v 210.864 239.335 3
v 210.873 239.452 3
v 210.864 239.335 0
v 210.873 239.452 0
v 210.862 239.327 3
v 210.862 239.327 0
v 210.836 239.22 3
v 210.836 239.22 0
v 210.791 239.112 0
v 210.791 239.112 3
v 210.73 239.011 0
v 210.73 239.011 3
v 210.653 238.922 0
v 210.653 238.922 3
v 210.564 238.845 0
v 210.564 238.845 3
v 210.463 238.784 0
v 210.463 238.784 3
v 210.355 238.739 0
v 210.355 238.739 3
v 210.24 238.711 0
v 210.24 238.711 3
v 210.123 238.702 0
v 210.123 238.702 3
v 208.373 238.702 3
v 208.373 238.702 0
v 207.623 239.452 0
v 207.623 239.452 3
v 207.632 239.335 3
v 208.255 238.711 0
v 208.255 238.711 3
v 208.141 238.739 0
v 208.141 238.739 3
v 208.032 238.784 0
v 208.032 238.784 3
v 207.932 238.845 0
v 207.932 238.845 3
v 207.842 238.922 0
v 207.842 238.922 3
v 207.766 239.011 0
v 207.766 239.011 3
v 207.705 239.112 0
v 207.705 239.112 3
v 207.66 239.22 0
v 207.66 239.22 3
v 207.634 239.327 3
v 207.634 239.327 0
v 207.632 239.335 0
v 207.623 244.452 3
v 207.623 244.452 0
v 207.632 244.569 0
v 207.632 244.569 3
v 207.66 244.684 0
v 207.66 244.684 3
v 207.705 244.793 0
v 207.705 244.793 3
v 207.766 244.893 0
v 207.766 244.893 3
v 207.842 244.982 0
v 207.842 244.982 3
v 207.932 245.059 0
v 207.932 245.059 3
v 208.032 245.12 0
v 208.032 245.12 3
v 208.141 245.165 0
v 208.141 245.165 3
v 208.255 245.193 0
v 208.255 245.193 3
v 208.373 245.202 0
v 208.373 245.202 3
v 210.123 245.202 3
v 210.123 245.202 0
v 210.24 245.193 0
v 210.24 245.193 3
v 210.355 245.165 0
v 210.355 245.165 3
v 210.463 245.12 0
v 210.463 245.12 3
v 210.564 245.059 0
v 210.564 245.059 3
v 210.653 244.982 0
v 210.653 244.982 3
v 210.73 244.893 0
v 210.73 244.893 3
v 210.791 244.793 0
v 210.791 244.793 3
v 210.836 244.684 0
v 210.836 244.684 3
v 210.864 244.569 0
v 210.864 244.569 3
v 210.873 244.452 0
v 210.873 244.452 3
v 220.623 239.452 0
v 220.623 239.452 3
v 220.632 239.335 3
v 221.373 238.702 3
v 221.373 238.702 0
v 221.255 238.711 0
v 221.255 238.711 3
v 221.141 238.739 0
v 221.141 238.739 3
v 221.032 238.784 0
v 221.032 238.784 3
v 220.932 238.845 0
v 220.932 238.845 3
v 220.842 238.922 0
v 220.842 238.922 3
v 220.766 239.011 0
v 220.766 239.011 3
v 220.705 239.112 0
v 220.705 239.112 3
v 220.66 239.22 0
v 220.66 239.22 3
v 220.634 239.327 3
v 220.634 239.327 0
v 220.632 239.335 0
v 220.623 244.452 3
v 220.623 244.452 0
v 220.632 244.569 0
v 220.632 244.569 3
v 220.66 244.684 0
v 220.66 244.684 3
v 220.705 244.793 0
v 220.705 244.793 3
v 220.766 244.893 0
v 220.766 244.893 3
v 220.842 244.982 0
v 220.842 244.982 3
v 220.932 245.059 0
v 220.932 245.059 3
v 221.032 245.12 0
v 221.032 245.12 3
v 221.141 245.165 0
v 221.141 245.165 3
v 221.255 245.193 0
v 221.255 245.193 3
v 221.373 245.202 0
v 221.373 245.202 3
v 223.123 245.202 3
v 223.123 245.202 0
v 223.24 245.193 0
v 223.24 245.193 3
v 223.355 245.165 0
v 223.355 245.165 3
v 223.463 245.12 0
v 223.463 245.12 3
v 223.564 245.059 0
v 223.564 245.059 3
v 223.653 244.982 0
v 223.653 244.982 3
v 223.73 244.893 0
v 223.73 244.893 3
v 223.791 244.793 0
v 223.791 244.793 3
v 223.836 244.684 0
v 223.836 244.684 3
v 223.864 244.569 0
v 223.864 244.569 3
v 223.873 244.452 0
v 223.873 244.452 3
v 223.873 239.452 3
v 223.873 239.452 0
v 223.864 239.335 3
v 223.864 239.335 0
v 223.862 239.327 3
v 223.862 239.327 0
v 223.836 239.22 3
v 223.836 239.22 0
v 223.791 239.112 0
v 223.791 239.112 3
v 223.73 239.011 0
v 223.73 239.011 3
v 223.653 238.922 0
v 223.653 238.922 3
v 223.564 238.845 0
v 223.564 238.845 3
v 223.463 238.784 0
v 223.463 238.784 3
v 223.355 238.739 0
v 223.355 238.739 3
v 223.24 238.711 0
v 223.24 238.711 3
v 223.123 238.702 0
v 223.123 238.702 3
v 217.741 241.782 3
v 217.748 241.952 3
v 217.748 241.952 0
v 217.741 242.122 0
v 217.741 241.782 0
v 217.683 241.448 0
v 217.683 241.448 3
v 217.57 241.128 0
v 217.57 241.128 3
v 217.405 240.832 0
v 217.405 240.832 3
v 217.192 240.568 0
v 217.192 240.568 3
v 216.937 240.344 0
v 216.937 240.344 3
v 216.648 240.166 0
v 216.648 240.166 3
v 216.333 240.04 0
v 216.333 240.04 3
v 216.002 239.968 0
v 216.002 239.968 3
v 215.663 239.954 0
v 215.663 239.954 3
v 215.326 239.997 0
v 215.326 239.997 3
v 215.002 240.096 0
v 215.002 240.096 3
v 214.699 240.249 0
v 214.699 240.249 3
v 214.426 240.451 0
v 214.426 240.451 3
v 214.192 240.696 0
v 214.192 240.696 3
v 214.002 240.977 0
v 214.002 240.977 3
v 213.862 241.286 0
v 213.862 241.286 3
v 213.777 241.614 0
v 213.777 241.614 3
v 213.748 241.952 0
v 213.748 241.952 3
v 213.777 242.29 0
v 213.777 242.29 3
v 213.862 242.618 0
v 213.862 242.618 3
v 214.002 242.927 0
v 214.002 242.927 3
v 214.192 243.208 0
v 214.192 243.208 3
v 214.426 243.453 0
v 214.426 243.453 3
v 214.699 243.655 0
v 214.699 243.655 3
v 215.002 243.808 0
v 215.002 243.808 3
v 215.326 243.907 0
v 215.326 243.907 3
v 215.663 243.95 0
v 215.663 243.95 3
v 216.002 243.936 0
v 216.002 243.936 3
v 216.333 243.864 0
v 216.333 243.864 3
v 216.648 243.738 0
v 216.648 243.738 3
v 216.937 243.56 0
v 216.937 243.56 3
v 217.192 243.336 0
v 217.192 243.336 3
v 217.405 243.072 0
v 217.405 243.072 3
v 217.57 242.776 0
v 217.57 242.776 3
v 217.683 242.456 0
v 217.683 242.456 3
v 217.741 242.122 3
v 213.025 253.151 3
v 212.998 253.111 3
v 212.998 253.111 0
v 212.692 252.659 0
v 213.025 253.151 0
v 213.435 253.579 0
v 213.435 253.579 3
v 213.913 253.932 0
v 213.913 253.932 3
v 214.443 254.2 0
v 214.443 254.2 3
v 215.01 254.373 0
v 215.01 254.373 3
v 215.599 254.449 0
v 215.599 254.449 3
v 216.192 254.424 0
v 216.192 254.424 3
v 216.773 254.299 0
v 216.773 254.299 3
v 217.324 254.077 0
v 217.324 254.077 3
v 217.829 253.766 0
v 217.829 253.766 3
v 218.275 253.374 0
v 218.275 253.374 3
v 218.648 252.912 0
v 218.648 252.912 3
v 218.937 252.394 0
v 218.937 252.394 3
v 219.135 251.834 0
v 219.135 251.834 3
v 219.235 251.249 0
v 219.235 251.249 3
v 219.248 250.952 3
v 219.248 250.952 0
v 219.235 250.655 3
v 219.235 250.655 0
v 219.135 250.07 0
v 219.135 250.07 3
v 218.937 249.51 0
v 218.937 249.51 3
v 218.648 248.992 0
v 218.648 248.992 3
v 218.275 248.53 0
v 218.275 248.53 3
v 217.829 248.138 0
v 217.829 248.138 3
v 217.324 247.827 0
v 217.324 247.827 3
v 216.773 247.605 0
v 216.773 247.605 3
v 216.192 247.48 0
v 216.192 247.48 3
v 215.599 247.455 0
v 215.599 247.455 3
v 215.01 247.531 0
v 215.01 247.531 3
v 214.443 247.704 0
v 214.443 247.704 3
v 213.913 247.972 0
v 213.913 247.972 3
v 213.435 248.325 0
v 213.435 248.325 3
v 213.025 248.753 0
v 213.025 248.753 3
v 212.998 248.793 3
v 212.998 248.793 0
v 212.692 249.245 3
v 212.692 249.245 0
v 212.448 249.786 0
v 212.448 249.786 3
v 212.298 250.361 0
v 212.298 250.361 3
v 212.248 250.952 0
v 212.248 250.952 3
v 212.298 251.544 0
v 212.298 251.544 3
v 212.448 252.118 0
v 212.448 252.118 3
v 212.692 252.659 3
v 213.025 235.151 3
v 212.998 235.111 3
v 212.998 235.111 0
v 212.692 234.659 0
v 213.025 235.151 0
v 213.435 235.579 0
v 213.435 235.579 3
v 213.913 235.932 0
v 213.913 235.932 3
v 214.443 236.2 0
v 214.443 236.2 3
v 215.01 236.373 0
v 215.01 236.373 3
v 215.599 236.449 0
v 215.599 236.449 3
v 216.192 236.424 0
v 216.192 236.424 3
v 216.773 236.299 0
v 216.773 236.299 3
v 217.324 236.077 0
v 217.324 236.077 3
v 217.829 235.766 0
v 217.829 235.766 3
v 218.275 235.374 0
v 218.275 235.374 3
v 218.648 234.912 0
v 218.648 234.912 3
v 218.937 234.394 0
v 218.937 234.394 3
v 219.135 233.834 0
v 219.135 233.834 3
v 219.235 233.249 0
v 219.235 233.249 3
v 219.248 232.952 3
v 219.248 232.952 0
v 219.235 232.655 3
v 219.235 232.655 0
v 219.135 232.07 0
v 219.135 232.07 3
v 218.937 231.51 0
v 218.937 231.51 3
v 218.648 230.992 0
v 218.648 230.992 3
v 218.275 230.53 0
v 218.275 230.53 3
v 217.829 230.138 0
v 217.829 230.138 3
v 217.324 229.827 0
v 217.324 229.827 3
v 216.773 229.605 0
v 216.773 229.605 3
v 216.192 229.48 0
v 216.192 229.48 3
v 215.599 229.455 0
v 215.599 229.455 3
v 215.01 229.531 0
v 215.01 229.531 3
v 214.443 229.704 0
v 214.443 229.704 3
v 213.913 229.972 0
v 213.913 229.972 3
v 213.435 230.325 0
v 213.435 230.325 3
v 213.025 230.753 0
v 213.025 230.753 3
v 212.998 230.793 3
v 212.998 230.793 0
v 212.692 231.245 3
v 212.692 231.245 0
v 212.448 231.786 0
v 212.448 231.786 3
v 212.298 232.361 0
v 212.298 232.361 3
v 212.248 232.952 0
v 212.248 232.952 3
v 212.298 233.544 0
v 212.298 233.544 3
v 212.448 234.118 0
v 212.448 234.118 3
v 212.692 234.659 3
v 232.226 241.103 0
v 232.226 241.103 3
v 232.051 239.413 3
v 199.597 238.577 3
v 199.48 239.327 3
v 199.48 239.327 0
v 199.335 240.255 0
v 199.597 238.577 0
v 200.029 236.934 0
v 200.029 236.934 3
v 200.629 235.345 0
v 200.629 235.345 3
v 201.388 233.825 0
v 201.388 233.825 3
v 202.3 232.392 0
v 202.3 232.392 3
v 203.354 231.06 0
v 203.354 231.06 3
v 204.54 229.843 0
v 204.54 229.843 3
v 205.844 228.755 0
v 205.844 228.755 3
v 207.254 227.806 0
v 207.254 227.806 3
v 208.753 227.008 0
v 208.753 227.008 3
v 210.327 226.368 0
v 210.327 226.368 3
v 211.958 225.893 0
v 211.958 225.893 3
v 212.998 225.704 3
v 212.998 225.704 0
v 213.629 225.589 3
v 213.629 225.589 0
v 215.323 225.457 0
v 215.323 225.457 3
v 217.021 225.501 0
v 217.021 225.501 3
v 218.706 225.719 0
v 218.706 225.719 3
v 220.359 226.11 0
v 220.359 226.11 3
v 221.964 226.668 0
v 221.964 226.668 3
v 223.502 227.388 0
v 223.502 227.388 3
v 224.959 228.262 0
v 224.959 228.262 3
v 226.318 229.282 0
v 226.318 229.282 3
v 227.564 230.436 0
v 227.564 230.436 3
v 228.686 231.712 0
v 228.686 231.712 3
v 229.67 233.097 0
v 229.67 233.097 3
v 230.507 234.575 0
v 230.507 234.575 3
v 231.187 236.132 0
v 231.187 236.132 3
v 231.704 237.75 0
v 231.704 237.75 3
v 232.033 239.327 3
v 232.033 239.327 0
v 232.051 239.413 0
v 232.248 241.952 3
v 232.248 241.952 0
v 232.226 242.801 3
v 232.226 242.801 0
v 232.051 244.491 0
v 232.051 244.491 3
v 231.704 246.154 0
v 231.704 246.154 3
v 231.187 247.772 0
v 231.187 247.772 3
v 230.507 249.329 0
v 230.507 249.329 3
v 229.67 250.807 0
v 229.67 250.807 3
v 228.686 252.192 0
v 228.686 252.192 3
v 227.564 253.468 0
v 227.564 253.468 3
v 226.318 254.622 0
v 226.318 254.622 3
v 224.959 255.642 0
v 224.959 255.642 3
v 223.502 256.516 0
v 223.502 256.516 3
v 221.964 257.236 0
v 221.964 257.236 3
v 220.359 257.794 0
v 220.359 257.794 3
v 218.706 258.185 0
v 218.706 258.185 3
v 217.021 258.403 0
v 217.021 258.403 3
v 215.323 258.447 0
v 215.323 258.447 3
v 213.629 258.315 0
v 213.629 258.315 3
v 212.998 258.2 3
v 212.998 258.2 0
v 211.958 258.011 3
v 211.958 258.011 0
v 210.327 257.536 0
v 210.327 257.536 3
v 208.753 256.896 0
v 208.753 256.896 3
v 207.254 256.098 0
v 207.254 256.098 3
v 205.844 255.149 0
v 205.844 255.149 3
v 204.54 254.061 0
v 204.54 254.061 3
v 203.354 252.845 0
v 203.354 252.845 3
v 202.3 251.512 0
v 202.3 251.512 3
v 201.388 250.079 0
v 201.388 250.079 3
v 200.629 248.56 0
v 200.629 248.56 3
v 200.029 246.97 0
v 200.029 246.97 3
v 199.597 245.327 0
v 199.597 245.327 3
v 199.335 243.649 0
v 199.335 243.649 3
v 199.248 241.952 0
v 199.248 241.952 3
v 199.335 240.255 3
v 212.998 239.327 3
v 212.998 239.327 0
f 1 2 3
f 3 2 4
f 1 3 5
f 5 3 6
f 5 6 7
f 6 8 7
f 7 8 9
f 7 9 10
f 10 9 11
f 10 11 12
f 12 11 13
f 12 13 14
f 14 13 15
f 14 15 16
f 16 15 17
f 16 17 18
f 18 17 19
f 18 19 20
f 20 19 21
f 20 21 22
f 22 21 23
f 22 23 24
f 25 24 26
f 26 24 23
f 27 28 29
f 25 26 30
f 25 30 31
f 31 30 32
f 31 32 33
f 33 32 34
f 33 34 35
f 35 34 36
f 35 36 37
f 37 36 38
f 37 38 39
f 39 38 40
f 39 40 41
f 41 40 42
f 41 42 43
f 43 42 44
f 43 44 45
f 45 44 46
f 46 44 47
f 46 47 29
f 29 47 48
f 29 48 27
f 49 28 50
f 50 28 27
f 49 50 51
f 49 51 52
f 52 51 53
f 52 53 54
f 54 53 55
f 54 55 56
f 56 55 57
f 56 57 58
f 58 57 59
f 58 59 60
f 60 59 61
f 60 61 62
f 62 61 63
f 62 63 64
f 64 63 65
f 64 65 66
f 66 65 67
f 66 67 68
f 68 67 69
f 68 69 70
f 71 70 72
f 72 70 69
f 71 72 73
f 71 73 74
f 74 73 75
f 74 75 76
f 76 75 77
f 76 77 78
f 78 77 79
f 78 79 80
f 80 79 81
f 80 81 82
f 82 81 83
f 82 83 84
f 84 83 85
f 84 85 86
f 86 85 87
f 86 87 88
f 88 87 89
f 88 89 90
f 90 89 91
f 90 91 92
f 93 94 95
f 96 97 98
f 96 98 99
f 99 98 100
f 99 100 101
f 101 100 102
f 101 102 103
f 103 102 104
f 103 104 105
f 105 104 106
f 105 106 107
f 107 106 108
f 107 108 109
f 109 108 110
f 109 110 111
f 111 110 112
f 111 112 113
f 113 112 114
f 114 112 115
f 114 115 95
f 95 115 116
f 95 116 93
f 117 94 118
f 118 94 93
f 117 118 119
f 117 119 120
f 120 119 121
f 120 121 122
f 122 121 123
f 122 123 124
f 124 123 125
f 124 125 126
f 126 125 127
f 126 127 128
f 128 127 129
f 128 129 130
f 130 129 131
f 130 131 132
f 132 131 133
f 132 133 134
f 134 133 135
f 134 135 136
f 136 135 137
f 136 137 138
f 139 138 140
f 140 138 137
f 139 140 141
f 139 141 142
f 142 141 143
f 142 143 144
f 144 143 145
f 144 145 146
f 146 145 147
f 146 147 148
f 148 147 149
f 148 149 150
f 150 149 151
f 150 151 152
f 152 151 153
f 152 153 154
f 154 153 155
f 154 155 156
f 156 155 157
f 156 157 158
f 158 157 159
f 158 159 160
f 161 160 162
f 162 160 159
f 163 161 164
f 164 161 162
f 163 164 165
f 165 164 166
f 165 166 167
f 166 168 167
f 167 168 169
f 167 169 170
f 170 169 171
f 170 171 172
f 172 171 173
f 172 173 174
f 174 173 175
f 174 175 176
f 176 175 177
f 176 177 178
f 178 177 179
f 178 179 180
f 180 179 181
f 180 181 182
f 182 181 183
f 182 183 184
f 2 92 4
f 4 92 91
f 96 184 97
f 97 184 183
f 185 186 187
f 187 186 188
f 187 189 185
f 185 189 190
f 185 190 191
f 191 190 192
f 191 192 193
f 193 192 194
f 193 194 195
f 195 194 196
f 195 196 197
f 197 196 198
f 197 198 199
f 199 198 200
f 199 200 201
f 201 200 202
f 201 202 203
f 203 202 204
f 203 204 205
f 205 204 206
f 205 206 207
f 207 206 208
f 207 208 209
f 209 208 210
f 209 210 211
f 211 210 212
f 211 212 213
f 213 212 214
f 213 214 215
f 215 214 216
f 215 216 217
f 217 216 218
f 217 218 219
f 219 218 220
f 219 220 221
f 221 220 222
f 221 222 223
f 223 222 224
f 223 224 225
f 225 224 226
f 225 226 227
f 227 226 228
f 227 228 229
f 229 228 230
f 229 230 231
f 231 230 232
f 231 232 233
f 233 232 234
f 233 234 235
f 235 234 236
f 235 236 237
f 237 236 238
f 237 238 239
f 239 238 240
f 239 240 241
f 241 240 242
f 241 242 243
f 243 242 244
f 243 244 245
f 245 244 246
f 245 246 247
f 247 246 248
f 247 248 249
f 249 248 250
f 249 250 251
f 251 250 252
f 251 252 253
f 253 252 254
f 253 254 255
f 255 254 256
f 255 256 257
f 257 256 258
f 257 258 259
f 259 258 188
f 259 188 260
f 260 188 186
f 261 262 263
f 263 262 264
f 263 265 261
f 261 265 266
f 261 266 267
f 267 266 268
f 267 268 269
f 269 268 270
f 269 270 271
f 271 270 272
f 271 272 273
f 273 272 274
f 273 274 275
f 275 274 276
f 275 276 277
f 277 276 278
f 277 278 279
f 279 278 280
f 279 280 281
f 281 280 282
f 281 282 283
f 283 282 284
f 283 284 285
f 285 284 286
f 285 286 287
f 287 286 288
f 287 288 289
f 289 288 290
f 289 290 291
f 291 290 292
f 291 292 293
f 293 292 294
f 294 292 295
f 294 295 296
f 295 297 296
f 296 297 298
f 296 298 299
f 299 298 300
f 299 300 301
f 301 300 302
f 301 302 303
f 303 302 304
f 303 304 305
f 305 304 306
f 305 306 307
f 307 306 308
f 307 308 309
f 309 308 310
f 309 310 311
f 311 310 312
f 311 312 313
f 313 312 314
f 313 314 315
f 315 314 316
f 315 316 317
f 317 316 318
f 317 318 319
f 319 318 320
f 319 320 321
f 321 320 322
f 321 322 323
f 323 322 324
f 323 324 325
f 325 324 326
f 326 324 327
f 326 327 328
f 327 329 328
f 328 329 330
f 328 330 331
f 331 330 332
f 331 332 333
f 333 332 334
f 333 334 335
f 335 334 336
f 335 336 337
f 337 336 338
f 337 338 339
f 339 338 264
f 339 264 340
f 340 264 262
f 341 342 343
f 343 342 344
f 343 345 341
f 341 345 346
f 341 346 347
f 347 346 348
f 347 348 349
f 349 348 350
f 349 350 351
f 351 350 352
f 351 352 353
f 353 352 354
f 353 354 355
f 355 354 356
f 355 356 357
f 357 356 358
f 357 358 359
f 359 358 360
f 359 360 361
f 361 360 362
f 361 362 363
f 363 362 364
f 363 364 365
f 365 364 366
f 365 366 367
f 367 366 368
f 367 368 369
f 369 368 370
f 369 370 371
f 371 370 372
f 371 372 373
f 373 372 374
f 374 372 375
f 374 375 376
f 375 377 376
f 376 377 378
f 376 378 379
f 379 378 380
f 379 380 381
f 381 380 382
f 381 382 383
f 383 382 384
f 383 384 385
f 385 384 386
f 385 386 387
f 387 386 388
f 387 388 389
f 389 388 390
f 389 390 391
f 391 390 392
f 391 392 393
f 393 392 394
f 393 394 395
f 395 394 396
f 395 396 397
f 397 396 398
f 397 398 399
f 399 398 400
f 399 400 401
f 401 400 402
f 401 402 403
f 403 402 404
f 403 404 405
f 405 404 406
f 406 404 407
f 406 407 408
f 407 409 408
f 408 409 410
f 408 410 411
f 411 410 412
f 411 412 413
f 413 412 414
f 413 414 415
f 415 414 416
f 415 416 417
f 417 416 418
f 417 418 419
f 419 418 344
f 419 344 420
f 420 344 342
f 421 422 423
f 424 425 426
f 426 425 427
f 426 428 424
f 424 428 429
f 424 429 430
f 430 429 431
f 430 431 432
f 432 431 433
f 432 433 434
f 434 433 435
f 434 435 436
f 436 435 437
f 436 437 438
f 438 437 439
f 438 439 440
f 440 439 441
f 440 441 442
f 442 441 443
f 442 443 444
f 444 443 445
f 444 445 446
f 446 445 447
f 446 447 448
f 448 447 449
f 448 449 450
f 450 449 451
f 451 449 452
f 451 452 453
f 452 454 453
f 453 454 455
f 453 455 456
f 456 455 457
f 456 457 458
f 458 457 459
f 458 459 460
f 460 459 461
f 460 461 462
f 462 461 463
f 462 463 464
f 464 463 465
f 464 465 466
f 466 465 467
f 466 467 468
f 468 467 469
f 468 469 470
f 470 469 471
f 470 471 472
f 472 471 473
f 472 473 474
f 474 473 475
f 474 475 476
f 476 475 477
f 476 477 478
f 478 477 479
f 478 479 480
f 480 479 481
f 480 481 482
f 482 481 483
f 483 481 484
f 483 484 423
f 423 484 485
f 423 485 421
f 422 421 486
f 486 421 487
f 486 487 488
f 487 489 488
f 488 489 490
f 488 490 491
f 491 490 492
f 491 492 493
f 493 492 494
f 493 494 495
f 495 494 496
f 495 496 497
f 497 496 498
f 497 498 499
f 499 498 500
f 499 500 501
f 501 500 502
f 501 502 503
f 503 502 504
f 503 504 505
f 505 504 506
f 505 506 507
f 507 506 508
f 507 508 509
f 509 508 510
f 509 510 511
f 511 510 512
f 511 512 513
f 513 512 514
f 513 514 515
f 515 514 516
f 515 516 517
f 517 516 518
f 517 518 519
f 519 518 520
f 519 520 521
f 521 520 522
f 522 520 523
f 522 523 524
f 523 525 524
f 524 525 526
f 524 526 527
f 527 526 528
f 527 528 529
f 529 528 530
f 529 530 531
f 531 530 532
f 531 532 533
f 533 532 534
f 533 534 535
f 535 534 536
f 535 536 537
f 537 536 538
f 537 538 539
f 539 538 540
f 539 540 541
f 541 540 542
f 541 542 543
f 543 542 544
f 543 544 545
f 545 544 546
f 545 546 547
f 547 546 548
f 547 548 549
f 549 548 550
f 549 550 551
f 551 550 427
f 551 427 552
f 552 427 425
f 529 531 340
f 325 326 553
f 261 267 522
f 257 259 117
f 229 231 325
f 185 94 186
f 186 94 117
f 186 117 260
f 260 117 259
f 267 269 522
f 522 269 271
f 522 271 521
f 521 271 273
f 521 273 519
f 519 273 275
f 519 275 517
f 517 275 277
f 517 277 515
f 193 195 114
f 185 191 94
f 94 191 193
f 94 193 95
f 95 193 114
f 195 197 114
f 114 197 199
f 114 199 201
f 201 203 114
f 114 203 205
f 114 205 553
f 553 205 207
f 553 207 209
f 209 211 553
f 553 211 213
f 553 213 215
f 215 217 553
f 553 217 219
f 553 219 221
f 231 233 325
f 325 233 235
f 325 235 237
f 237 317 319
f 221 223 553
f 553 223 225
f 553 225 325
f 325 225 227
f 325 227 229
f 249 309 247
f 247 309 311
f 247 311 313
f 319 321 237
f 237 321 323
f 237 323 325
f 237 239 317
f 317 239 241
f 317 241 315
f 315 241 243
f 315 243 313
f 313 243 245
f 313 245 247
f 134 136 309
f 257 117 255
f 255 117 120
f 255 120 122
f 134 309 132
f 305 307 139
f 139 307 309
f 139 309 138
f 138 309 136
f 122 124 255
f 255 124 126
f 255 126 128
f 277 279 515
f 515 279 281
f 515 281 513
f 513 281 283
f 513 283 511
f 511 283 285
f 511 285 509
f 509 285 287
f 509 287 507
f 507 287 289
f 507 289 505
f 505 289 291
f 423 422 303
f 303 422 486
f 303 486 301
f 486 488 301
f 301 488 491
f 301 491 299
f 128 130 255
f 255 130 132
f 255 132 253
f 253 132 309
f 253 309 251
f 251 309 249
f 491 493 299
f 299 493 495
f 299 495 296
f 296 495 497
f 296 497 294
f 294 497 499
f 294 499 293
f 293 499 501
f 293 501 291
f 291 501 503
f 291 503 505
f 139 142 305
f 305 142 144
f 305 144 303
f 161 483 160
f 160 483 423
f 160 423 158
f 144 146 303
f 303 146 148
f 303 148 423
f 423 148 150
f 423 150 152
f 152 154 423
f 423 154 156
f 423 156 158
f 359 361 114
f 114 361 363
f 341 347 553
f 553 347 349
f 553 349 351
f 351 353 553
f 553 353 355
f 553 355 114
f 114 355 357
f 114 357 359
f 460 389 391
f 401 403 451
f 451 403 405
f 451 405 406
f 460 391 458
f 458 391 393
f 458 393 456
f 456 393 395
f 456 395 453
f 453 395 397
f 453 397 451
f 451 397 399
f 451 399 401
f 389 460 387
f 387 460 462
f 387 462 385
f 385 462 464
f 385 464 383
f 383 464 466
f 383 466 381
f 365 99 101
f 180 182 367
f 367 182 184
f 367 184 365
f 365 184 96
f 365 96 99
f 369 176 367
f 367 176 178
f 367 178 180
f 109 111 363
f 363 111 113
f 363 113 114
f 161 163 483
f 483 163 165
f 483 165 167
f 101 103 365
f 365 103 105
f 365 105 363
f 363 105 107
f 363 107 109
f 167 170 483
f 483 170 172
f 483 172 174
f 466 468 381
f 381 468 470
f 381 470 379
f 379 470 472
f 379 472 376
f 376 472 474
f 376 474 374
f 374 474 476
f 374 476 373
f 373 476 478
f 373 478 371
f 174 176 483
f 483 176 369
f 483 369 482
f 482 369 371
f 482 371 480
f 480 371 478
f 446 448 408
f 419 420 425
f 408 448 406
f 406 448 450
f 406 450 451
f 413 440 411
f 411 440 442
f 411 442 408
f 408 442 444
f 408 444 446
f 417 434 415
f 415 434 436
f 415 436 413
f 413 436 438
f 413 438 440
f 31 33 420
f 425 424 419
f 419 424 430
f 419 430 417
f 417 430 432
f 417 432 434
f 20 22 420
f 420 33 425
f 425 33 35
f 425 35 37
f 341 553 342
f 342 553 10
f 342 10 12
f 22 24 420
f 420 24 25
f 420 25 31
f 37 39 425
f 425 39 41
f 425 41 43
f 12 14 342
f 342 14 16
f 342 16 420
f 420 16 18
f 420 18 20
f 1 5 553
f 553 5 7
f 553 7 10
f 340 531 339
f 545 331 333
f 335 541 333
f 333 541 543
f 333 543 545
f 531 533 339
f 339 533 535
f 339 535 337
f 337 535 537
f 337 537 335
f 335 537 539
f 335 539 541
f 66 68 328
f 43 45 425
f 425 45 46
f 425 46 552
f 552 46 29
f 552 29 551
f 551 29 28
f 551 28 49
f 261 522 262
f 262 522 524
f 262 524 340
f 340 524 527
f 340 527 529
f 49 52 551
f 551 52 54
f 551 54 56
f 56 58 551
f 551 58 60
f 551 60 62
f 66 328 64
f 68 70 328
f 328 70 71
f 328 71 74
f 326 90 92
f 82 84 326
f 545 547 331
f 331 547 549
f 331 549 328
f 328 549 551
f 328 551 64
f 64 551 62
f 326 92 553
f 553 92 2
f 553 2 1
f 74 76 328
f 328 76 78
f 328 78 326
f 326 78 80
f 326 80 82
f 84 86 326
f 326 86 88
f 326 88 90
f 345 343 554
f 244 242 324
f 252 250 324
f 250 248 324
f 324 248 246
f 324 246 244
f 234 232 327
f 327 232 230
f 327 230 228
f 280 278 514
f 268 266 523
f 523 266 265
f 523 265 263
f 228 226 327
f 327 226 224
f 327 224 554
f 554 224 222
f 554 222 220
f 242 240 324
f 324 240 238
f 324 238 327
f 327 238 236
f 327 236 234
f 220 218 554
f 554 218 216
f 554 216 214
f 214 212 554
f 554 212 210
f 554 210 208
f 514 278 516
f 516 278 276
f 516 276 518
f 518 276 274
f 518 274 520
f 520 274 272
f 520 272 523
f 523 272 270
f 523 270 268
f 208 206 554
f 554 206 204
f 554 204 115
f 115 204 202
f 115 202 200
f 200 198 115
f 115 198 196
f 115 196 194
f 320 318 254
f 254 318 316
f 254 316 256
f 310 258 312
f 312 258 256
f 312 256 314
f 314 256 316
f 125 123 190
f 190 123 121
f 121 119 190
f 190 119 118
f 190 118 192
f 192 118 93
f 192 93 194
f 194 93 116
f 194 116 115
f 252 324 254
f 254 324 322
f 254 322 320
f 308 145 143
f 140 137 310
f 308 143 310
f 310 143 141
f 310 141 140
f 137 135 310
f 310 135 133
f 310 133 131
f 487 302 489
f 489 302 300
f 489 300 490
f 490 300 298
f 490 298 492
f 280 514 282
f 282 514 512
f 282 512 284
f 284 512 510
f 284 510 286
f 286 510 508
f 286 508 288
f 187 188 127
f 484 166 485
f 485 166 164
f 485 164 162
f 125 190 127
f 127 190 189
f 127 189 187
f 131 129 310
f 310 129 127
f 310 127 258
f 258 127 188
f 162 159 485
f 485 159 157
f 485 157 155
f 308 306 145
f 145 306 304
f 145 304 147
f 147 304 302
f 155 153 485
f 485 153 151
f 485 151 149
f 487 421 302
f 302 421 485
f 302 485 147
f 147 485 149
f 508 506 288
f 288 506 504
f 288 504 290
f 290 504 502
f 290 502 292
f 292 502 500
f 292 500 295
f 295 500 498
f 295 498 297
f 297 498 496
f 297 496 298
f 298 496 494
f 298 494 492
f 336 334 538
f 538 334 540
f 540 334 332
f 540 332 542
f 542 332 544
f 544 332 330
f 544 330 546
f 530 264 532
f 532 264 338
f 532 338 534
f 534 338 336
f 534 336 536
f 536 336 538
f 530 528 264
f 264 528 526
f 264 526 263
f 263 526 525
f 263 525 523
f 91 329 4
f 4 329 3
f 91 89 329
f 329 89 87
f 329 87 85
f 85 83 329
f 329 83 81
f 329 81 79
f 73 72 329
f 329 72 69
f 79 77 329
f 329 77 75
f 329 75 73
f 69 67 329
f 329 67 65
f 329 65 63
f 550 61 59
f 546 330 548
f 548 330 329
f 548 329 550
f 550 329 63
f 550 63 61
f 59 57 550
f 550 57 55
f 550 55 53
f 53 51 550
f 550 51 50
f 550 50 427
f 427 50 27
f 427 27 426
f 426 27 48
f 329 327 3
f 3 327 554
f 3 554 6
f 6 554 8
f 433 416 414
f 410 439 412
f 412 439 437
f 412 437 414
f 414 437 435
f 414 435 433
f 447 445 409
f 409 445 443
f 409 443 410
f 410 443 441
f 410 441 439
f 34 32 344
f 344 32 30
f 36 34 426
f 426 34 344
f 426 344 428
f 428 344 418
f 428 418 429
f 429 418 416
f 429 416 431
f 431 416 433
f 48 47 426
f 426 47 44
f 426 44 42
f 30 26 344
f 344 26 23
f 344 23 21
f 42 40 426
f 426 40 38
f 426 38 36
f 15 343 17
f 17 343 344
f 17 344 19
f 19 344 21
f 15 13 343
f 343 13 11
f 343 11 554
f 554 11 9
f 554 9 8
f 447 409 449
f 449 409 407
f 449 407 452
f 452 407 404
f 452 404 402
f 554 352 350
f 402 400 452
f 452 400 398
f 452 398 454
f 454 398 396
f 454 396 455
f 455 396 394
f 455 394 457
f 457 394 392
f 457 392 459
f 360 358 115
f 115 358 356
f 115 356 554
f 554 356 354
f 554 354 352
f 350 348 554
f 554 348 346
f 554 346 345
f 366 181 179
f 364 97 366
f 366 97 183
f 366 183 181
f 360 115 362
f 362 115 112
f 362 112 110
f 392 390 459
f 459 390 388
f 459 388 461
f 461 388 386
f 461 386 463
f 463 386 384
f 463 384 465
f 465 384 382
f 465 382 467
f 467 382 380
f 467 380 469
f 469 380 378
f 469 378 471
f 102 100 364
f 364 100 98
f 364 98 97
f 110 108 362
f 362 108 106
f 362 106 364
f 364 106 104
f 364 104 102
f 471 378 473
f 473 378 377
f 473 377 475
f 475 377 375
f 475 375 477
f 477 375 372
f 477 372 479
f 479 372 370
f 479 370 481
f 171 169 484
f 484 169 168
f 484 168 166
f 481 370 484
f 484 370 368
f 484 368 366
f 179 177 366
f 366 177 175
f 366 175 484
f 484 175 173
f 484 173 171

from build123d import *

# Parameters (mm, degrees)
MODEL_R                 = 16.5
MODEL_R_2               = 3.5
MODEL_R_3               = 2
SALIENTE_EXTRUIR1_DEPTH = 3


with BuildPart() as part:
    # Model → Saliente-Extruir1 (new body)
    with BuildSketch(Plane.XY):
        with Locations((215.747807914, 241.952019993)):
            Circle(MODEL_R)
        with BuildLine():
            ThreePointArc((207.622807913, 244.452019993), (207.842477828, 244.982350079), (208.372807913, 245.202019993))
            Line((208.372807913, 245.202019993), (210.122807913, 245.202019993))
            ThreePointArc((210.122807913, 245.202019993), (210.653137999, 244.982350079), (210.872807913, 244.452019993))
            Line((210.872807913, 244.452019993), (210.872807913, 239.452019993))
            ThreePointArc((210.872807914, 239.452019993), (210.653137999, 238.921689907), (210.122807913, 238.702019993))
            Line((210.122807913, 238.702019993), (208.372807913, 238.702019993))
            ThreePointArc((208.372807913, 238.702019993), (207.842477828, 238.921689907), (207.622807913, 239.452019993))
            Line((207.622807913, 239.452019993), (207.622807913, 244.452019993))
        make_face(mode=Mode.SUBTRACT)
        with Locations((215.747807914, 232.952019993)):
            Circle(MODEL_R_2, mode=Mode.SUBTRACT)
        with BuildLine():
            Line((221.372807913, 245.202019993), (223.122807913, 245.202019993))
            ThreePointArc((223.122807913, 245.202019993), (223.653137999, 244.982350079), (223.872807913, 244.452019993))
            Line((223.872807913, 244.452019993), (223.872807913, 239.452019993))
            ThreePointArc((223.872807914, 239.452019993), (223.653137999, 238.921689907), (223.122807913, 238.702019993))
            Line((223.122807913, 238.702019993), (221.372807913, 238.702019993))
            ThreePointArc((221.372807913, 238.702019993), (220.842477828, 238.921689907), (220.622807913, 239.452019993))
            Line((220.622807913, 239.452019993), (220.622807913, 244.452019993))
            ThreePointArc((220.622807913, 244.452019993), (220.842477828, 244.982350079), (221.372807913, 245.202019993))
        make_face(mode=Mode.SUBTRACT)
        with Locations((215.747807914, 241.952019993)):
            Circle(MODEL_R_3, mode=Mode.SUBTRACT)
        with Locations((215.747807914, 250.952019993)):
            Circle(MODEL_R_2, mode=Mode.SUBTRACT)
    extrude(amount=SALIENTE_EXTRUIR1_DEPTH)


solid = part.part
